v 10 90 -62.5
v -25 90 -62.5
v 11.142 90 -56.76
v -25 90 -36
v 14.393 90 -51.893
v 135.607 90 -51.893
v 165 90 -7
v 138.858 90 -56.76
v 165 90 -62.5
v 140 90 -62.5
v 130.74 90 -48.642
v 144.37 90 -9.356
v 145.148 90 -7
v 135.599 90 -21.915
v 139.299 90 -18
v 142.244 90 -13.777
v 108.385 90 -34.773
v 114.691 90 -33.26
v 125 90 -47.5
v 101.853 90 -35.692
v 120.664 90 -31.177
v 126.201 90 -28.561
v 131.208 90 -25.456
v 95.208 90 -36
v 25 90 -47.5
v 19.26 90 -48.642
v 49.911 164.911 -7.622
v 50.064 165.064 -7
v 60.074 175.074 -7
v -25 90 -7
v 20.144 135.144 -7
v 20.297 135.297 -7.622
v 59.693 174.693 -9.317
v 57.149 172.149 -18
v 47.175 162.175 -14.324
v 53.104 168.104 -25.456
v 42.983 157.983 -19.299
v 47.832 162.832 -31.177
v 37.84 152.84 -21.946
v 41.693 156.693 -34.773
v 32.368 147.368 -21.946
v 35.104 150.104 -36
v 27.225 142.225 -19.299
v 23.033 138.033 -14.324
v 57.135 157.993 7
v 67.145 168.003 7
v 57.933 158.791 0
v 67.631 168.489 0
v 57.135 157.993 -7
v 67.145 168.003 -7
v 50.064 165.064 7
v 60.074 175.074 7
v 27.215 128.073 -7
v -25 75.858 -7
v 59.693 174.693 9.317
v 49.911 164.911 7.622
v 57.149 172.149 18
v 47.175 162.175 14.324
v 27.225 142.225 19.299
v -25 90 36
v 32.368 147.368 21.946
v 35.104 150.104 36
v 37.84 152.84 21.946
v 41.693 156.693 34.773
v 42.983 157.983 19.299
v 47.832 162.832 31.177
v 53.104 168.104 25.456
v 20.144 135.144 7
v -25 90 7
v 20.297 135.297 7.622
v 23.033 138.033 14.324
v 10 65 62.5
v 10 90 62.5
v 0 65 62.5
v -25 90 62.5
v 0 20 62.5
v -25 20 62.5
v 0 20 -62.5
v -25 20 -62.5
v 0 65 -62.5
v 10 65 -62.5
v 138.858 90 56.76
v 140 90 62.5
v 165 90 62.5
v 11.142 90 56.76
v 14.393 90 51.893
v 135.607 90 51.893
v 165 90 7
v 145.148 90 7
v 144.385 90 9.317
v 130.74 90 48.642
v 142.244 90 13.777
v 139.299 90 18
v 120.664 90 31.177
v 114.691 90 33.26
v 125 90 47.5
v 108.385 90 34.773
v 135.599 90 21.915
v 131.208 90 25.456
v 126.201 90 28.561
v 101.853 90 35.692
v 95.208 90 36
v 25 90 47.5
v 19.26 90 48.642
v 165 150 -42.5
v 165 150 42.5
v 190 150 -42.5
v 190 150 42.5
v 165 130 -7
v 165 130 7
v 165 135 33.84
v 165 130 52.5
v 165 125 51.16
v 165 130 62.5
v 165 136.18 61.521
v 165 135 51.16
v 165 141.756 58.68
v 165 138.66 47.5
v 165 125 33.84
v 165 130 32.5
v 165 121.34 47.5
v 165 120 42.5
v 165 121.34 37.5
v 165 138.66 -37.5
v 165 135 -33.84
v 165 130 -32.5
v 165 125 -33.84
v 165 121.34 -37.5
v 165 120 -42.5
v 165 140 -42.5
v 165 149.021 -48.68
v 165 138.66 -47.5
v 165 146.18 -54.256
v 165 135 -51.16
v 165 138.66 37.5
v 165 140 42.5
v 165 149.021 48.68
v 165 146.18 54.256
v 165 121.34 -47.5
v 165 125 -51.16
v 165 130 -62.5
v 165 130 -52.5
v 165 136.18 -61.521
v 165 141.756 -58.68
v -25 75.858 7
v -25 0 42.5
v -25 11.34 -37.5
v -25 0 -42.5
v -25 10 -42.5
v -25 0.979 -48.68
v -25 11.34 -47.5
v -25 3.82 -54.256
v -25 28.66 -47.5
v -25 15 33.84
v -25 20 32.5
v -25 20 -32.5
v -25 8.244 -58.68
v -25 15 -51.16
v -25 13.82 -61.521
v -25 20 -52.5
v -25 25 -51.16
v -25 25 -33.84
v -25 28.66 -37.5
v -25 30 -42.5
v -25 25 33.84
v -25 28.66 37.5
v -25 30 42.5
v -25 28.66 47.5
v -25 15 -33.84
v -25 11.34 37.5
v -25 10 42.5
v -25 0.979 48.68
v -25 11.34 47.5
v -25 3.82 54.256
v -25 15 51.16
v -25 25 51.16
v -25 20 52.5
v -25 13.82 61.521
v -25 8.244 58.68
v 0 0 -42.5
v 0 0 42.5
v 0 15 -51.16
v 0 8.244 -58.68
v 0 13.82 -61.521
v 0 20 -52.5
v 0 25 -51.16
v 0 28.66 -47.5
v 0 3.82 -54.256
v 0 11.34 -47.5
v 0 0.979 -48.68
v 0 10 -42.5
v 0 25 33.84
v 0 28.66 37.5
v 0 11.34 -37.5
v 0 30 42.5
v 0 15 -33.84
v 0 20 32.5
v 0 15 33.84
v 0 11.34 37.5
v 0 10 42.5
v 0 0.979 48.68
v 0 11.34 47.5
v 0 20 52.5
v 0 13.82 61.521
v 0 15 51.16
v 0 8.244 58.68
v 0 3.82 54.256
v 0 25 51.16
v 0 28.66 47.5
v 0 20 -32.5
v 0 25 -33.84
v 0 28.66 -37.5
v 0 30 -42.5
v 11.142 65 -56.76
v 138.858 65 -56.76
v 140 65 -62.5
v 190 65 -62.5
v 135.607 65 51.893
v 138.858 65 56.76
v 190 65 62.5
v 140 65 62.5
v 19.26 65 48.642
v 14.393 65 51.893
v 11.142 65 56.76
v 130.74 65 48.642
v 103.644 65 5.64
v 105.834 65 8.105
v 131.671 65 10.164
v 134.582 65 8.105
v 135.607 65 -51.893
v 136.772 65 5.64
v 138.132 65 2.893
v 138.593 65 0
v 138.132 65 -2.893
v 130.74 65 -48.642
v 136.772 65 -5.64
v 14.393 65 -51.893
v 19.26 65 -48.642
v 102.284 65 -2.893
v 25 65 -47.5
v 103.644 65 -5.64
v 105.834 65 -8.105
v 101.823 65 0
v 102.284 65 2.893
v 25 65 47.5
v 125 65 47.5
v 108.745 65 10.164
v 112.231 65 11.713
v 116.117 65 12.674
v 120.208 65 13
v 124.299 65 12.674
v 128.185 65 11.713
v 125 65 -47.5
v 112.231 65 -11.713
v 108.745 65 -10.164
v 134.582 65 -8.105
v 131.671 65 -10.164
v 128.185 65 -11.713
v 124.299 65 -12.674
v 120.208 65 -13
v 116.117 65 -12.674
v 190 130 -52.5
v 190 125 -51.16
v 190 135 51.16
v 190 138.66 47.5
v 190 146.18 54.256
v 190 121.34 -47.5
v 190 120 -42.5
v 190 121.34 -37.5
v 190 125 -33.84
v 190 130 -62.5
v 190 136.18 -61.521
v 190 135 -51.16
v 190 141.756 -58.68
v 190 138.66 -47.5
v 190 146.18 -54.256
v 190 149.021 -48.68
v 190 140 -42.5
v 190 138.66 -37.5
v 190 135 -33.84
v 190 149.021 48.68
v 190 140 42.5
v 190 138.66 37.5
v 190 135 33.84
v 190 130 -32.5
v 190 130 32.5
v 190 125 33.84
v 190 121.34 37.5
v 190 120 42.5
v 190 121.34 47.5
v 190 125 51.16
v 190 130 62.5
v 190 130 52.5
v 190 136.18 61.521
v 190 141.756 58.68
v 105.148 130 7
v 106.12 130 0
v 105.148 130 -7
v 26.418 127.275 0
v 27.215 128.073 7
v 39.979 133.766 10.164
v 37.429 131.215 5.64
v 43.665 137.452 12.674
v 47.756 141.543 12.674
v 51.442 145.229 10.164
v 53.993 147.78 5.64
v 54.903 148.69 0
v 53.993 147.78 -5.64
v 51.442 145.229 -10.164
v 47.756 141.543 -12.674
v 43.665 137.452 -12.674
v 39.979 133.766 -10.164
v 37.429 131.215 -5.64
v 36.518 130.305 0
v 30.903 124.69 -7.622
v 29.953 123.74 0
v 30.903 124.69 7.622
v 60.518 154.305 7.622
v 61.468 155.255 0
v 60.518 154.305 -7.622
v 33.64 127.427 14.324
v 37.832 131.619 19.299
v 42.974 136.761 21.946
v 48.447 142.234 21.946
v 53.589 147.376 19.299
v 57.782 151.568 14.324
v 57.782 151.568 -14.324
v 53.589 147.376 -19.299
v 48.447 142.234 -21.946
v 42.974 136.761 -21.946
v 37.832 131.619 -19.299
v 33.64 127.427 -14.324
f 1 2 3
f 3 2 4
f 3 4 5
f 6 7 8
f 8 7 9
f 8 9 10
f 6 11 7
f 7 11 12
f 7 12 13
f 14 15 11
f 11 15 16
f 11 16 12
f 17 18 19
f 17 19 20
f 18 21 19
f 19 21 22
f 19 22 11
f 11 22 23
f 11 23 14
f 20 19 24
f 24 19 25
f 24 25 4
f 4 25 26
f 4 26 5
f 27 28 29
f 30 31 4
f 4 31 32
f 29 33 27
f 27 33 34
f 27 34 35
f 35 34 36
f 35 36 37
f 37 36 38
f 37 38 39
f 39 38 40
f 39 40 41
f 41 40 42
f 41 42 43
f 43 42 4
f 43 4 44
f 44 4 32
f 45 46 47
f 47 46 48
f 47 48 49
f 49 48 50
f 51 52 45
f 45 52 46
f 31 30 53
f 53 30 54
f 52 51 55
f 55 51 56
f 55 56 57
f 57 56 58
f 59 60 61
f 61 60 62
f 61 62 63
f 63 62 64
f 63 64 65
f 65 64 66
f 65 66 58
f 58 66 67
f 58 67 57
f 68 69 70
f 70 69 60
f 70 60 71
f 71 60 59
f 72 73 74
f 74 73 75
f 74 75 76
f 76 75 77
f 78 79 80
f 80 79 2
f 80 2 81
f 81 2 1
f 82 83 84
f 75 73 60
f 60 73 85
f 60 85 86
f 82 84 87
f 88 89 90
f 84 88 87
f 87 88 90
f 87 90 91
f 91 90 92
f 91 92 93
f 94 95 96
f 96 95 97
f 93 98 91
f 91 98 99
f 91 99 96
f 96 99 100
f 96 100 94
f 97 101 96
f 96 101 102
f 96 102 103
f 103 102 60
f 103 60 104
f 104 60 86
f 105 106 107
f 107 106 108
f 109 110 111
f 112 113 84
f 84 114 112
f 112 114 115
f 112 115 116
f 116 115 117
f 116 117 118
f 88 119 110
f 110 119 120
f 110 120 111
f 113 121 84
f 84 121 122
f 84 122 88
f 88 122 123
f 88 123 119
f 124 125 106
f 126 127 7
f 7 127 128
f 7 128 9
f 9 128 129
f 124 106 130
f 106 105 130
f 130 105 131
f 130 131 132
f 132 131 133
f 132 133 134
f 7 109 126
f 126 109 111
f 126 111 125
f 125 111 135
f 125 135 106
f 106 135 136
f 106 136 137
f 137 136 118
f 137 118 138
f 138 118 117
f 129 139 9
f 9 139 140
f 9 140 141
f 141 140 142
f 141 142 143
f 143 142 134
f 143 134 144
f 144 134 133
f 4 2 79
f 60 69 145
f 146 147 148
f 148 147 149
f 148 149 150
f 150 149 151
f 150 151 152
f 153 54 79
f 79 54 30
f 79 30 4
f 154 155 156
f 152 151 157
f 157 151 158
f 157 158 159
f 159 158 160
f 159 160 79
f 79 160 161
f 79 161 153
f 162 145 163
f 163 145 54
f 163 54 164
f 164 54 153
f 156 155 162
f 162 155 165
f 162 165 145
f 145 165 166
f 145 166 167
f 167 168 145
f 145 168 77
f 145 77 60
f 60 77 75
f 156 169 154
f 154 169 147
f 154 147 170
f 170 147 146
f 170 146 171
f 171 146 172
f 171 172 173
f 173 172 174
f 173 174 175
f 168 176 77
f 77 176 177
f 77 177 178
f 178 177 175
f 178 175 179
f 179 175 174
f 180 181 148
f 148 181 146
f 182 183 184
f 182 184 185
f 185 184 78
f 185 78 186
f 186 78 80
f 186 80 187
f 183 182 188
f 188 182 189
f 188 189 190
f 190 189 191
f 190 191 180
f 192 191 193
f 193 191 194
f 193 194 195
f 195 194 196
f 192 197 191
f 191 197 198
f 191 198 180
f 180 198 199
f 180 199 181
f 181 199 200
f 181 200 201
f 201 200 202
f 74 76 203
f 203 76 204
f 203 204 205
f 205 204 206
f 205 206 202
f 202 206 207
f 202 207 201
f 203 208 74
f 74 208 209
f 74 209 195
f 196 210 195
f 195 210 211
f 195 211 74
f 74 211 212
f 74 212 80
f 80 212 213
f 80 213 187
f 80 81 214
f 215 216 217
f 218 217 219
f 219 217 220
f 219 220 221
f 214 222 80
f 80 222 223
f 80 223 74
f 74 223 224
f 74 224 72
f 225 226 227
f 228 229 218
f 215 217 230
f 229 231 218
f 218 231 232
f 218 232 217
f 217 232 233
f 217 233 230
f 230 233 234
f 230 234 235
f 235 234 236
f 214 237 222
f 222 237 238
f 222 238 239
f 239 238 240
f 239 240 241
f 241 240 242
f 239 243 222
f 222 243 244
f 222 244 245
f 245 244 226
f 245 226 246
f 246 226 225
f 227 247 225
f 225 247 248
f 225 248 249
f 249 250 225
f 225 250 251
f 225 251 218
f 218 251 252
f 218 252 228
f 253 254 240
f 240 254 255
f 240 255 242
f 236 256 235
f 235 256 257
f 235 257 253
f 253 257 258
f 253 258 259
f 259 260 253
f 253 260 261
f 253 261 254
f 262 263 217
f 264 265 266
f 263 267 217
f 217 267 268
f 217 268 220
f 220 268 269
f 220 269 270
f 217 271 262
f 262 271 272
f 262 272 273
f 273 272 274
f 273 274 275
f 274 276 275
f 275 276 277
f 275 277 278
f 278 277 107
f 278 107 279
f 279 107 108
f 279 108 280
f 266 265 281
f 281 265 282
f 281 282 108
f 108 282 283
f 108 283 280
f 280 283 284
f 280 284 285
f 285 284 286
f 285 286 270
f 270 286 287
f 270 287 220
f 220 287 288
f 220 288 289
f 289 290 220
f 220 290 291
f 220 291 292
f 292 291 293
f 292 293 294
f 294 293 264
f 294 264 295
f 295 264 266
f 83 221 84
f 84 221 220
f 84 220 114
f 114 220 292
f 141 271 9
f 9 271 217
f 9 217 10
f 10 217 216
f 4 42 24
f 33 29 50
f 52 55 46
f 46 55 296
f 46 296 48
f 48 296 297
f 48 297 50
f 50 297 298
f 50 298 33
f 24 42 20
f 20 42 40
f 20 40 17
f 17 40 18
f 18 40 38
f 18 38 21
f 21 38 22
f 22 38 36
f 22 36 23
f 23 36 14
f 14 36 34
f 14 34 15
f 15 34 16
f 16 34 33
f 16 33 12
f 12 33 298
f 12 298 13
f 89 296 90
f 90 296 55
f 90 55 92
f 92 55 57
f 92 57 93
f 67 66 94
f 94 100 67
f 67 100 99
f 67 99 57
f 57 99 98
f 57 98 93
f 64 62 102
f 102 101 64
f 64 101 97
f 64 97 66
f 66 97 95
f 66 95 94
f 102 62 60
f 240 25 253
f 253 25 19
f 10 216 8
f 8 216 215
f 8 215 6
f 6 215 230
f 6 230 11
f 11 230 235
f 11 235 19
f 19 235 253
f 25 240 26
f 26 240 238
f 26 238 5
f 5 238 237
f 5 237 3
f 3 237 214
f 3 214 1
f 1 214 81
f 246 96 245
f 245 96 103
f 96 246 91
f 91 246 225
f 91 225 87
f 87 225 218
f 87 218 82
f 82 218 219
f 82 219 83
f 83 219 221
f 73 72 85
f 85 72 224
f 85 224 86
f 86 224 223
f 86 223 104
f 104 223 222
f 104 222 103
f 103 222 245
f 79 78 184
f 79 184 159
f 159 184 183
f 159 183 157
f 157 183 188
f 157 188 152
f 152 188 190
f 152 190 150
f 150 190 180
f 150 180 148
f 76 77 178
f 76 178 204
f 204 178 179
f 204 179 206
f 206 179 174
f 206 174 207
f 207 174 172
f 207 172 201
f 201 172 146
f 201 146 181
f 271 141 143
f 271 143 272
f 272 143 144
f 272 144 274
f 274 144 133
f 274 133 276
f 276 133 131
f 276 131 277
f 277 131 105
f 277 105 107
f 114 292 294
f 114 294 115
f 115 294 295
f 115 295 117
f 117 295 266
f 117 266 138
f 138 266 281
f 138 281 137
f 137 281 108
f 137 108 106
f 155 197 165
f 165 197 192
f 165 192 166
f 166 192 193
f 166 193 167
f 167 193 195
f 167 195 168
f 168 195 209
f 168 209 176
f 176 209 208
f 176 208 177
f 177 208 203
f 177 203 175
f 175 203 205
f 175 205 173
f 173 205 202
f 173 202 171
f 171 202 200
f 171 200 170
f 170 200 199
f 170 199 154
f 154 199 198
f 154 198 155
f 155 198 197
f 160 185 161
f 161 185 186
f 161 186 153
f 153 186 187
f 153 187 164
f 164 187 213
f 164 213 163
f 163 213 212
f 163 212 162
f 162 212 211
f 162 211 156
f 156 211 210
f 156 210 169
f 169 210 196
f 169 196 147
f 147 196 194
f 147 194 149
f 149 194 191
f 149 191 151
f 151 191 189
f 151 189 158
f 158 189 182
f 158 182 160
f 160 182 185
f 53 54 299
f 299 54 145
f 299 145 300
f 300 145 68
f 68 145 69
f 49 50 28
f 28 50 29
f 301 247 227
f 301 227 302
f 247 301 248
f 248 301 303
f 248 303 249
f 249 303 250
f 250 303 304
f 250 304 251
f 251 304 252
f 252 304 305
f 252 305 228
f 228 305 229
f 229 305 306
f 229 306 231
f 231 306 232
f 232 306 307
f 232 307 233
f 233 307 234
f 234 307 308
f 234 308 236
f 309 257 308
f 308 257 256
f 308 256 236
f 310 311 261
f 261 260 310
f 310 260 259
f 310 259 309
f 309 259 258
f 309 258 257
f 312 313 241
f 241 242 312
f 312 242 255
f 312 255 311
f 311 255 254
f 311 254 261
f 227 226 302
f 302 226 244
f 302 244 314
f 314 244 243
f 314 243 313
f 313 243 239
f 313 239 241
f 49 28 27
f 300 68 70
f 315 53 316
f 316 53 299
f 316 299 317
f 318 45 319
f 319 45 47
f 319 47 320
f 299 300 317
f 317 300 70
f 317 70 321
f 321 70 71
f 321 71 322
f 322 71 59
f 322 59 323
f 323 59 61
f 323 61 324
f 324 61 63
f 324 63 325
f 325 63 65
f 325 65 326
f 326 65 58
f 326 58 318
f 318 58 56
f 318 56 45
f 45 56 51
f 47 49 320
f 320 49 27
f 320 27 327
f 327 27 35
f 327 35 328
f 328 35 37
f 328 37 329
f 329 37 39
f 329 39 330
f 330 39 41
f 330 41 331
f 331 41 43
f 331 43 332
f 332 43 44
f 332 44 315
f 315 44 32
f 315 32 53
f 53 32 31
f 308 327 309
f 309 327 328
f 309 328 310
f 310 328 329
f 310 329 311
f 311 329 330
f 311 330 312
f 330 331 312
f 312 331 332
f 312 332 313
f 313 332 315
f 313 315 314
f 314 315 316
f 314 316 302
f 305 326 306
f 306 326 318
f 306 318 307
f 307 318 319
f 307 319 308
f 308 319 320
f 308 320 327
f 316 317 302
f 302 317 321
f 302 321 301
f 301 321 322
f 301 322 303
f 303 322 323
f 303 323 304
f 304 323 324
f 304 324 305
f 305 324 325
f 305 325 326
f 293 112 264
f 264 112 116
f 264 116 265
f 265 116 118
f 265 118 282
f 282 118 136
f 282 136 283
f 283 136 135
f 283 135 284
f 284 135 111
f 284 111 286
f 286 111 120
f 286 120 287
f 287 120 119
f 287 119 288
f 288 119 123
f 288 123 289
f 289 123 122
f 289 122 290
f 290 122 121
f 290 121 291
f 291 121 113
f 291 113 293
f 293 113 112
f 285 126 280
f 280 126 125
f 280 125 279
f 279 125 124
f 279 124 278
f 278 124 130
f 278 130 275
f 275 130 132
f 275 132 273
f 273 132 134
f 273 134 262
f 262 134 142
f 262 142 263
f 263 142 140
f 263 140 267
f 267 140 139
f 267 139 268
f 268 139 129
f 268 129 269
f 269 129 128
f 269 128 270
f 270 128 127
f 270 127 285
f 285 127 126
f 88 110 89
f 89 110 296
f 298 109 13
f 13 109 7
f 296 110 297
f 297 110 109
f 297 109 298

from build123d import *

# Parameters (mm, degrees)
BOSS_EXTRUDE1_DEPTH                      = 62.5
BOSS_EXTRUDE2_REACH                      = 273.512
CUT_EXTRUDE1_DEPTH                       = 229.538281314
FILLET1_R                                = 20
SKETCH6_R                                = 10
CUT_EXTRUDE2_DEPTH                       = 267.134431621
CUT_EXTRUDE3_DEPTH                       = 10
CBORE_FOR_M24_HEX_HEAD_BOLT1_D           = 26
CBORE_FOR_M24_HEX_HEAD_BOLT1_CBORE_D     = 44.569
CBORE_FOR_M24_HEX_HEAD_BOLT1_CBORE_DEPTH = 15
CUT_EXTRUDE4_START                       = 165
SKETCH6_3_R                              = 10
CUT_EXTRUDE4_DEPTH                       = 101.814175539
BOSS_EXTRUDE4_DEPTH                      = 7


with BuildPart() as part:
    # Sketch1 → Boss-Extrude1 (new, symmetric)
    with BuildSketch(Plane.XY):
        Polygon((190, 150), (190, 65), (0, 65), (0, 0), (-25, 0), (-25, 90), (165, 90), (165, 150), align=None)
    extrude(amount=BOSS_EXTRUDE1_DEPTH, both=True)

    # Sketch4 → Boss-Extrude2 (add, up to next)
    with BuildSketch(Plane(origin=(-57.5, 57.5, 0), x_dir=(0.7071067811865475, 0.7071067811865477, 0), z_dir=(0.7071067811865477, -0.7071067811865475, 0)), mode=Mode.PRIVATE) as boss_extrude2_sk1:
        with BuildLine():
            Line((45.961940777, -36), (130.961940777, -36))
            ThreePointArc((130.961940777, -36), (166.961940777, 0), (130.961940777, 36))
            Line((130.961940777, 36), (45.961940777, 36))
            Line((45.961940777, 36), (45.961940777, -36))
        make_face()
    boss_extrude2_tool1 = extrude(boss_extrude2_sk1.sketch, amount=BOSS_EXTRUDE2_REACH, mode=Mode.PRIVATE) - part.part
    add(boss_extrude2_tool1.solids().sort_by_distance((15.250037, 130.250037, 0))[0])

    # Sketch5 → Cut-Extrude1 (cut, through all)
    with BuildSketch(Plane(origin=(0, 65, 0), x_dir=(-1, 0, 0), z_dir=(0, -1, 0))):
        with BuildLine():
            Line((-125, -47.5), (-25, -47.5))
            ThreePointArc((-25, -47.5), (-14.393398282, -73.106601718), (-40, -62.5))
            Line((-40, -62.5), (-110, -62.5))
            ThreePointArc((-110, -62.5), (-135.606601718, -73.106601718), (-125, -47.5))
        make_face()
        with BuildLine():
            Line((-125, 47.5), (-25, 47.5))
            ThreePointArc((-25, 47.5), (-14.393398282, 73.106601718), (-40, 62.5))
            Line((-40, 62.5), (-110, 62.5))
            ThreePointArc((-110, 62.5), (-135.606601718, 73.106601718), (-125, 47.5))
        make_face()
    extrude(amount=-CUT_EXTRUDE1_DEPTH, mode=Mode.SUBTRACT)

    # Fillet1
    fillet1_edges = [part.edges().sort_by_distance(p)[0] for p in [
        (177.5, 150, -62.5),
        (-12.5, 0, 62.5),
        (177.5, 150, 62.5),
        (-12.5, 0, -62.5),
    ]]
    fillet(fillet1_edges, radius=FILLET1_R)

    # Sketch6 → Cut-Extrude2 (cut, through all)
    with BuildSketch(Plane(origin=(0, 0, 0), x_dir=(0, 0, -1), z_dir=(1, 0, 0))):
        with Locations((42.5, 20)):
            Circle(SKETCH6_R)
        with Locations((-42.5, 20)):
            Circle(SKETCH6_R)
    extrude(amount=-CUT_EXTRUDE2_DEPTH, mode=Mode.SUBTRACT)

    # Sketch7 → Cut-Extrude3 (cut)
    with BuildSketch(Plane(origin=(-57.5, 57.5, 0), x_dir=(0, 0, 1), z_dir=(-0.7071067811865438, 0.7071067811865513, 0))):
        with BuildLine():
            Line((-7, 166.274827943), (-7, 27.494892071))
            Line((-7, 27.494892071), (7, 27.494892071))
            Line((7, 27.494892071), (7, 166.274827943))
            ThreePointArc((7, 166.274827943), (0, 166.961940777), (-7, 166.274827943))
        make_face()
    extrude(amount=-CUT_EXTRUDE3_DEPTH, mode=Mode.SUBTRACT)

    # CBORE for M24 Hex Head Bolt1 (through all)
    with Locations(Plane(origin=(-57.5, 57.5, 0), x_dir=(0, 0, 1), z_dir=(-0.7071067811865438, 0.7071067811865513, 0))):
        with Locations((0, 130.961940777)):
            CounterBoreHole(CBORE_FOR_M24_HEX_HEAD_BOLT1_D / 2, CBORE_FOR_M24_HEX_HEAD_BOLT1_CBORE_D / 2, CBORE_FOR_M24_HEX_HEAD_BOLT1_CBORE_DEPTH)

    # Sketch6<3> → Cut-Extrude4 (cut, through all)
    with BuildSketch(Plane(origin=(0, 0, 0), x_dir=(0, 0, -1), z_dir=(1, 0, 0)).offset(CUT_EXTRUDE4_START)):
        with Locations((42.5, 20)):
            Circle(SKETCH6_3_R)
        with Locations((-42.5, 20)):
            Circle(SKETCH6_3_R)
        with Locations((42.5, 130)):
            Circle(SKETCH6_3_R)
        with Locations((-42.5, 130)):
            Circle(SKETCH6_3_R)
    extrude(amount=CUT_EXTRUDE4_DEPTH, mode=Mode.SUBTRACT)

    # Sketch11 → Boss-Extrude4 (add, symmetric)
    with BuildSketch(Plane.XY):
        Polygon((165, 130), (97.583974217, 130), (137.512677947, 90), (165, 90), align=None)
    extrude(amount=BOSS_EXTRUDE4_DEPTH, both=True)


solid = part.part
